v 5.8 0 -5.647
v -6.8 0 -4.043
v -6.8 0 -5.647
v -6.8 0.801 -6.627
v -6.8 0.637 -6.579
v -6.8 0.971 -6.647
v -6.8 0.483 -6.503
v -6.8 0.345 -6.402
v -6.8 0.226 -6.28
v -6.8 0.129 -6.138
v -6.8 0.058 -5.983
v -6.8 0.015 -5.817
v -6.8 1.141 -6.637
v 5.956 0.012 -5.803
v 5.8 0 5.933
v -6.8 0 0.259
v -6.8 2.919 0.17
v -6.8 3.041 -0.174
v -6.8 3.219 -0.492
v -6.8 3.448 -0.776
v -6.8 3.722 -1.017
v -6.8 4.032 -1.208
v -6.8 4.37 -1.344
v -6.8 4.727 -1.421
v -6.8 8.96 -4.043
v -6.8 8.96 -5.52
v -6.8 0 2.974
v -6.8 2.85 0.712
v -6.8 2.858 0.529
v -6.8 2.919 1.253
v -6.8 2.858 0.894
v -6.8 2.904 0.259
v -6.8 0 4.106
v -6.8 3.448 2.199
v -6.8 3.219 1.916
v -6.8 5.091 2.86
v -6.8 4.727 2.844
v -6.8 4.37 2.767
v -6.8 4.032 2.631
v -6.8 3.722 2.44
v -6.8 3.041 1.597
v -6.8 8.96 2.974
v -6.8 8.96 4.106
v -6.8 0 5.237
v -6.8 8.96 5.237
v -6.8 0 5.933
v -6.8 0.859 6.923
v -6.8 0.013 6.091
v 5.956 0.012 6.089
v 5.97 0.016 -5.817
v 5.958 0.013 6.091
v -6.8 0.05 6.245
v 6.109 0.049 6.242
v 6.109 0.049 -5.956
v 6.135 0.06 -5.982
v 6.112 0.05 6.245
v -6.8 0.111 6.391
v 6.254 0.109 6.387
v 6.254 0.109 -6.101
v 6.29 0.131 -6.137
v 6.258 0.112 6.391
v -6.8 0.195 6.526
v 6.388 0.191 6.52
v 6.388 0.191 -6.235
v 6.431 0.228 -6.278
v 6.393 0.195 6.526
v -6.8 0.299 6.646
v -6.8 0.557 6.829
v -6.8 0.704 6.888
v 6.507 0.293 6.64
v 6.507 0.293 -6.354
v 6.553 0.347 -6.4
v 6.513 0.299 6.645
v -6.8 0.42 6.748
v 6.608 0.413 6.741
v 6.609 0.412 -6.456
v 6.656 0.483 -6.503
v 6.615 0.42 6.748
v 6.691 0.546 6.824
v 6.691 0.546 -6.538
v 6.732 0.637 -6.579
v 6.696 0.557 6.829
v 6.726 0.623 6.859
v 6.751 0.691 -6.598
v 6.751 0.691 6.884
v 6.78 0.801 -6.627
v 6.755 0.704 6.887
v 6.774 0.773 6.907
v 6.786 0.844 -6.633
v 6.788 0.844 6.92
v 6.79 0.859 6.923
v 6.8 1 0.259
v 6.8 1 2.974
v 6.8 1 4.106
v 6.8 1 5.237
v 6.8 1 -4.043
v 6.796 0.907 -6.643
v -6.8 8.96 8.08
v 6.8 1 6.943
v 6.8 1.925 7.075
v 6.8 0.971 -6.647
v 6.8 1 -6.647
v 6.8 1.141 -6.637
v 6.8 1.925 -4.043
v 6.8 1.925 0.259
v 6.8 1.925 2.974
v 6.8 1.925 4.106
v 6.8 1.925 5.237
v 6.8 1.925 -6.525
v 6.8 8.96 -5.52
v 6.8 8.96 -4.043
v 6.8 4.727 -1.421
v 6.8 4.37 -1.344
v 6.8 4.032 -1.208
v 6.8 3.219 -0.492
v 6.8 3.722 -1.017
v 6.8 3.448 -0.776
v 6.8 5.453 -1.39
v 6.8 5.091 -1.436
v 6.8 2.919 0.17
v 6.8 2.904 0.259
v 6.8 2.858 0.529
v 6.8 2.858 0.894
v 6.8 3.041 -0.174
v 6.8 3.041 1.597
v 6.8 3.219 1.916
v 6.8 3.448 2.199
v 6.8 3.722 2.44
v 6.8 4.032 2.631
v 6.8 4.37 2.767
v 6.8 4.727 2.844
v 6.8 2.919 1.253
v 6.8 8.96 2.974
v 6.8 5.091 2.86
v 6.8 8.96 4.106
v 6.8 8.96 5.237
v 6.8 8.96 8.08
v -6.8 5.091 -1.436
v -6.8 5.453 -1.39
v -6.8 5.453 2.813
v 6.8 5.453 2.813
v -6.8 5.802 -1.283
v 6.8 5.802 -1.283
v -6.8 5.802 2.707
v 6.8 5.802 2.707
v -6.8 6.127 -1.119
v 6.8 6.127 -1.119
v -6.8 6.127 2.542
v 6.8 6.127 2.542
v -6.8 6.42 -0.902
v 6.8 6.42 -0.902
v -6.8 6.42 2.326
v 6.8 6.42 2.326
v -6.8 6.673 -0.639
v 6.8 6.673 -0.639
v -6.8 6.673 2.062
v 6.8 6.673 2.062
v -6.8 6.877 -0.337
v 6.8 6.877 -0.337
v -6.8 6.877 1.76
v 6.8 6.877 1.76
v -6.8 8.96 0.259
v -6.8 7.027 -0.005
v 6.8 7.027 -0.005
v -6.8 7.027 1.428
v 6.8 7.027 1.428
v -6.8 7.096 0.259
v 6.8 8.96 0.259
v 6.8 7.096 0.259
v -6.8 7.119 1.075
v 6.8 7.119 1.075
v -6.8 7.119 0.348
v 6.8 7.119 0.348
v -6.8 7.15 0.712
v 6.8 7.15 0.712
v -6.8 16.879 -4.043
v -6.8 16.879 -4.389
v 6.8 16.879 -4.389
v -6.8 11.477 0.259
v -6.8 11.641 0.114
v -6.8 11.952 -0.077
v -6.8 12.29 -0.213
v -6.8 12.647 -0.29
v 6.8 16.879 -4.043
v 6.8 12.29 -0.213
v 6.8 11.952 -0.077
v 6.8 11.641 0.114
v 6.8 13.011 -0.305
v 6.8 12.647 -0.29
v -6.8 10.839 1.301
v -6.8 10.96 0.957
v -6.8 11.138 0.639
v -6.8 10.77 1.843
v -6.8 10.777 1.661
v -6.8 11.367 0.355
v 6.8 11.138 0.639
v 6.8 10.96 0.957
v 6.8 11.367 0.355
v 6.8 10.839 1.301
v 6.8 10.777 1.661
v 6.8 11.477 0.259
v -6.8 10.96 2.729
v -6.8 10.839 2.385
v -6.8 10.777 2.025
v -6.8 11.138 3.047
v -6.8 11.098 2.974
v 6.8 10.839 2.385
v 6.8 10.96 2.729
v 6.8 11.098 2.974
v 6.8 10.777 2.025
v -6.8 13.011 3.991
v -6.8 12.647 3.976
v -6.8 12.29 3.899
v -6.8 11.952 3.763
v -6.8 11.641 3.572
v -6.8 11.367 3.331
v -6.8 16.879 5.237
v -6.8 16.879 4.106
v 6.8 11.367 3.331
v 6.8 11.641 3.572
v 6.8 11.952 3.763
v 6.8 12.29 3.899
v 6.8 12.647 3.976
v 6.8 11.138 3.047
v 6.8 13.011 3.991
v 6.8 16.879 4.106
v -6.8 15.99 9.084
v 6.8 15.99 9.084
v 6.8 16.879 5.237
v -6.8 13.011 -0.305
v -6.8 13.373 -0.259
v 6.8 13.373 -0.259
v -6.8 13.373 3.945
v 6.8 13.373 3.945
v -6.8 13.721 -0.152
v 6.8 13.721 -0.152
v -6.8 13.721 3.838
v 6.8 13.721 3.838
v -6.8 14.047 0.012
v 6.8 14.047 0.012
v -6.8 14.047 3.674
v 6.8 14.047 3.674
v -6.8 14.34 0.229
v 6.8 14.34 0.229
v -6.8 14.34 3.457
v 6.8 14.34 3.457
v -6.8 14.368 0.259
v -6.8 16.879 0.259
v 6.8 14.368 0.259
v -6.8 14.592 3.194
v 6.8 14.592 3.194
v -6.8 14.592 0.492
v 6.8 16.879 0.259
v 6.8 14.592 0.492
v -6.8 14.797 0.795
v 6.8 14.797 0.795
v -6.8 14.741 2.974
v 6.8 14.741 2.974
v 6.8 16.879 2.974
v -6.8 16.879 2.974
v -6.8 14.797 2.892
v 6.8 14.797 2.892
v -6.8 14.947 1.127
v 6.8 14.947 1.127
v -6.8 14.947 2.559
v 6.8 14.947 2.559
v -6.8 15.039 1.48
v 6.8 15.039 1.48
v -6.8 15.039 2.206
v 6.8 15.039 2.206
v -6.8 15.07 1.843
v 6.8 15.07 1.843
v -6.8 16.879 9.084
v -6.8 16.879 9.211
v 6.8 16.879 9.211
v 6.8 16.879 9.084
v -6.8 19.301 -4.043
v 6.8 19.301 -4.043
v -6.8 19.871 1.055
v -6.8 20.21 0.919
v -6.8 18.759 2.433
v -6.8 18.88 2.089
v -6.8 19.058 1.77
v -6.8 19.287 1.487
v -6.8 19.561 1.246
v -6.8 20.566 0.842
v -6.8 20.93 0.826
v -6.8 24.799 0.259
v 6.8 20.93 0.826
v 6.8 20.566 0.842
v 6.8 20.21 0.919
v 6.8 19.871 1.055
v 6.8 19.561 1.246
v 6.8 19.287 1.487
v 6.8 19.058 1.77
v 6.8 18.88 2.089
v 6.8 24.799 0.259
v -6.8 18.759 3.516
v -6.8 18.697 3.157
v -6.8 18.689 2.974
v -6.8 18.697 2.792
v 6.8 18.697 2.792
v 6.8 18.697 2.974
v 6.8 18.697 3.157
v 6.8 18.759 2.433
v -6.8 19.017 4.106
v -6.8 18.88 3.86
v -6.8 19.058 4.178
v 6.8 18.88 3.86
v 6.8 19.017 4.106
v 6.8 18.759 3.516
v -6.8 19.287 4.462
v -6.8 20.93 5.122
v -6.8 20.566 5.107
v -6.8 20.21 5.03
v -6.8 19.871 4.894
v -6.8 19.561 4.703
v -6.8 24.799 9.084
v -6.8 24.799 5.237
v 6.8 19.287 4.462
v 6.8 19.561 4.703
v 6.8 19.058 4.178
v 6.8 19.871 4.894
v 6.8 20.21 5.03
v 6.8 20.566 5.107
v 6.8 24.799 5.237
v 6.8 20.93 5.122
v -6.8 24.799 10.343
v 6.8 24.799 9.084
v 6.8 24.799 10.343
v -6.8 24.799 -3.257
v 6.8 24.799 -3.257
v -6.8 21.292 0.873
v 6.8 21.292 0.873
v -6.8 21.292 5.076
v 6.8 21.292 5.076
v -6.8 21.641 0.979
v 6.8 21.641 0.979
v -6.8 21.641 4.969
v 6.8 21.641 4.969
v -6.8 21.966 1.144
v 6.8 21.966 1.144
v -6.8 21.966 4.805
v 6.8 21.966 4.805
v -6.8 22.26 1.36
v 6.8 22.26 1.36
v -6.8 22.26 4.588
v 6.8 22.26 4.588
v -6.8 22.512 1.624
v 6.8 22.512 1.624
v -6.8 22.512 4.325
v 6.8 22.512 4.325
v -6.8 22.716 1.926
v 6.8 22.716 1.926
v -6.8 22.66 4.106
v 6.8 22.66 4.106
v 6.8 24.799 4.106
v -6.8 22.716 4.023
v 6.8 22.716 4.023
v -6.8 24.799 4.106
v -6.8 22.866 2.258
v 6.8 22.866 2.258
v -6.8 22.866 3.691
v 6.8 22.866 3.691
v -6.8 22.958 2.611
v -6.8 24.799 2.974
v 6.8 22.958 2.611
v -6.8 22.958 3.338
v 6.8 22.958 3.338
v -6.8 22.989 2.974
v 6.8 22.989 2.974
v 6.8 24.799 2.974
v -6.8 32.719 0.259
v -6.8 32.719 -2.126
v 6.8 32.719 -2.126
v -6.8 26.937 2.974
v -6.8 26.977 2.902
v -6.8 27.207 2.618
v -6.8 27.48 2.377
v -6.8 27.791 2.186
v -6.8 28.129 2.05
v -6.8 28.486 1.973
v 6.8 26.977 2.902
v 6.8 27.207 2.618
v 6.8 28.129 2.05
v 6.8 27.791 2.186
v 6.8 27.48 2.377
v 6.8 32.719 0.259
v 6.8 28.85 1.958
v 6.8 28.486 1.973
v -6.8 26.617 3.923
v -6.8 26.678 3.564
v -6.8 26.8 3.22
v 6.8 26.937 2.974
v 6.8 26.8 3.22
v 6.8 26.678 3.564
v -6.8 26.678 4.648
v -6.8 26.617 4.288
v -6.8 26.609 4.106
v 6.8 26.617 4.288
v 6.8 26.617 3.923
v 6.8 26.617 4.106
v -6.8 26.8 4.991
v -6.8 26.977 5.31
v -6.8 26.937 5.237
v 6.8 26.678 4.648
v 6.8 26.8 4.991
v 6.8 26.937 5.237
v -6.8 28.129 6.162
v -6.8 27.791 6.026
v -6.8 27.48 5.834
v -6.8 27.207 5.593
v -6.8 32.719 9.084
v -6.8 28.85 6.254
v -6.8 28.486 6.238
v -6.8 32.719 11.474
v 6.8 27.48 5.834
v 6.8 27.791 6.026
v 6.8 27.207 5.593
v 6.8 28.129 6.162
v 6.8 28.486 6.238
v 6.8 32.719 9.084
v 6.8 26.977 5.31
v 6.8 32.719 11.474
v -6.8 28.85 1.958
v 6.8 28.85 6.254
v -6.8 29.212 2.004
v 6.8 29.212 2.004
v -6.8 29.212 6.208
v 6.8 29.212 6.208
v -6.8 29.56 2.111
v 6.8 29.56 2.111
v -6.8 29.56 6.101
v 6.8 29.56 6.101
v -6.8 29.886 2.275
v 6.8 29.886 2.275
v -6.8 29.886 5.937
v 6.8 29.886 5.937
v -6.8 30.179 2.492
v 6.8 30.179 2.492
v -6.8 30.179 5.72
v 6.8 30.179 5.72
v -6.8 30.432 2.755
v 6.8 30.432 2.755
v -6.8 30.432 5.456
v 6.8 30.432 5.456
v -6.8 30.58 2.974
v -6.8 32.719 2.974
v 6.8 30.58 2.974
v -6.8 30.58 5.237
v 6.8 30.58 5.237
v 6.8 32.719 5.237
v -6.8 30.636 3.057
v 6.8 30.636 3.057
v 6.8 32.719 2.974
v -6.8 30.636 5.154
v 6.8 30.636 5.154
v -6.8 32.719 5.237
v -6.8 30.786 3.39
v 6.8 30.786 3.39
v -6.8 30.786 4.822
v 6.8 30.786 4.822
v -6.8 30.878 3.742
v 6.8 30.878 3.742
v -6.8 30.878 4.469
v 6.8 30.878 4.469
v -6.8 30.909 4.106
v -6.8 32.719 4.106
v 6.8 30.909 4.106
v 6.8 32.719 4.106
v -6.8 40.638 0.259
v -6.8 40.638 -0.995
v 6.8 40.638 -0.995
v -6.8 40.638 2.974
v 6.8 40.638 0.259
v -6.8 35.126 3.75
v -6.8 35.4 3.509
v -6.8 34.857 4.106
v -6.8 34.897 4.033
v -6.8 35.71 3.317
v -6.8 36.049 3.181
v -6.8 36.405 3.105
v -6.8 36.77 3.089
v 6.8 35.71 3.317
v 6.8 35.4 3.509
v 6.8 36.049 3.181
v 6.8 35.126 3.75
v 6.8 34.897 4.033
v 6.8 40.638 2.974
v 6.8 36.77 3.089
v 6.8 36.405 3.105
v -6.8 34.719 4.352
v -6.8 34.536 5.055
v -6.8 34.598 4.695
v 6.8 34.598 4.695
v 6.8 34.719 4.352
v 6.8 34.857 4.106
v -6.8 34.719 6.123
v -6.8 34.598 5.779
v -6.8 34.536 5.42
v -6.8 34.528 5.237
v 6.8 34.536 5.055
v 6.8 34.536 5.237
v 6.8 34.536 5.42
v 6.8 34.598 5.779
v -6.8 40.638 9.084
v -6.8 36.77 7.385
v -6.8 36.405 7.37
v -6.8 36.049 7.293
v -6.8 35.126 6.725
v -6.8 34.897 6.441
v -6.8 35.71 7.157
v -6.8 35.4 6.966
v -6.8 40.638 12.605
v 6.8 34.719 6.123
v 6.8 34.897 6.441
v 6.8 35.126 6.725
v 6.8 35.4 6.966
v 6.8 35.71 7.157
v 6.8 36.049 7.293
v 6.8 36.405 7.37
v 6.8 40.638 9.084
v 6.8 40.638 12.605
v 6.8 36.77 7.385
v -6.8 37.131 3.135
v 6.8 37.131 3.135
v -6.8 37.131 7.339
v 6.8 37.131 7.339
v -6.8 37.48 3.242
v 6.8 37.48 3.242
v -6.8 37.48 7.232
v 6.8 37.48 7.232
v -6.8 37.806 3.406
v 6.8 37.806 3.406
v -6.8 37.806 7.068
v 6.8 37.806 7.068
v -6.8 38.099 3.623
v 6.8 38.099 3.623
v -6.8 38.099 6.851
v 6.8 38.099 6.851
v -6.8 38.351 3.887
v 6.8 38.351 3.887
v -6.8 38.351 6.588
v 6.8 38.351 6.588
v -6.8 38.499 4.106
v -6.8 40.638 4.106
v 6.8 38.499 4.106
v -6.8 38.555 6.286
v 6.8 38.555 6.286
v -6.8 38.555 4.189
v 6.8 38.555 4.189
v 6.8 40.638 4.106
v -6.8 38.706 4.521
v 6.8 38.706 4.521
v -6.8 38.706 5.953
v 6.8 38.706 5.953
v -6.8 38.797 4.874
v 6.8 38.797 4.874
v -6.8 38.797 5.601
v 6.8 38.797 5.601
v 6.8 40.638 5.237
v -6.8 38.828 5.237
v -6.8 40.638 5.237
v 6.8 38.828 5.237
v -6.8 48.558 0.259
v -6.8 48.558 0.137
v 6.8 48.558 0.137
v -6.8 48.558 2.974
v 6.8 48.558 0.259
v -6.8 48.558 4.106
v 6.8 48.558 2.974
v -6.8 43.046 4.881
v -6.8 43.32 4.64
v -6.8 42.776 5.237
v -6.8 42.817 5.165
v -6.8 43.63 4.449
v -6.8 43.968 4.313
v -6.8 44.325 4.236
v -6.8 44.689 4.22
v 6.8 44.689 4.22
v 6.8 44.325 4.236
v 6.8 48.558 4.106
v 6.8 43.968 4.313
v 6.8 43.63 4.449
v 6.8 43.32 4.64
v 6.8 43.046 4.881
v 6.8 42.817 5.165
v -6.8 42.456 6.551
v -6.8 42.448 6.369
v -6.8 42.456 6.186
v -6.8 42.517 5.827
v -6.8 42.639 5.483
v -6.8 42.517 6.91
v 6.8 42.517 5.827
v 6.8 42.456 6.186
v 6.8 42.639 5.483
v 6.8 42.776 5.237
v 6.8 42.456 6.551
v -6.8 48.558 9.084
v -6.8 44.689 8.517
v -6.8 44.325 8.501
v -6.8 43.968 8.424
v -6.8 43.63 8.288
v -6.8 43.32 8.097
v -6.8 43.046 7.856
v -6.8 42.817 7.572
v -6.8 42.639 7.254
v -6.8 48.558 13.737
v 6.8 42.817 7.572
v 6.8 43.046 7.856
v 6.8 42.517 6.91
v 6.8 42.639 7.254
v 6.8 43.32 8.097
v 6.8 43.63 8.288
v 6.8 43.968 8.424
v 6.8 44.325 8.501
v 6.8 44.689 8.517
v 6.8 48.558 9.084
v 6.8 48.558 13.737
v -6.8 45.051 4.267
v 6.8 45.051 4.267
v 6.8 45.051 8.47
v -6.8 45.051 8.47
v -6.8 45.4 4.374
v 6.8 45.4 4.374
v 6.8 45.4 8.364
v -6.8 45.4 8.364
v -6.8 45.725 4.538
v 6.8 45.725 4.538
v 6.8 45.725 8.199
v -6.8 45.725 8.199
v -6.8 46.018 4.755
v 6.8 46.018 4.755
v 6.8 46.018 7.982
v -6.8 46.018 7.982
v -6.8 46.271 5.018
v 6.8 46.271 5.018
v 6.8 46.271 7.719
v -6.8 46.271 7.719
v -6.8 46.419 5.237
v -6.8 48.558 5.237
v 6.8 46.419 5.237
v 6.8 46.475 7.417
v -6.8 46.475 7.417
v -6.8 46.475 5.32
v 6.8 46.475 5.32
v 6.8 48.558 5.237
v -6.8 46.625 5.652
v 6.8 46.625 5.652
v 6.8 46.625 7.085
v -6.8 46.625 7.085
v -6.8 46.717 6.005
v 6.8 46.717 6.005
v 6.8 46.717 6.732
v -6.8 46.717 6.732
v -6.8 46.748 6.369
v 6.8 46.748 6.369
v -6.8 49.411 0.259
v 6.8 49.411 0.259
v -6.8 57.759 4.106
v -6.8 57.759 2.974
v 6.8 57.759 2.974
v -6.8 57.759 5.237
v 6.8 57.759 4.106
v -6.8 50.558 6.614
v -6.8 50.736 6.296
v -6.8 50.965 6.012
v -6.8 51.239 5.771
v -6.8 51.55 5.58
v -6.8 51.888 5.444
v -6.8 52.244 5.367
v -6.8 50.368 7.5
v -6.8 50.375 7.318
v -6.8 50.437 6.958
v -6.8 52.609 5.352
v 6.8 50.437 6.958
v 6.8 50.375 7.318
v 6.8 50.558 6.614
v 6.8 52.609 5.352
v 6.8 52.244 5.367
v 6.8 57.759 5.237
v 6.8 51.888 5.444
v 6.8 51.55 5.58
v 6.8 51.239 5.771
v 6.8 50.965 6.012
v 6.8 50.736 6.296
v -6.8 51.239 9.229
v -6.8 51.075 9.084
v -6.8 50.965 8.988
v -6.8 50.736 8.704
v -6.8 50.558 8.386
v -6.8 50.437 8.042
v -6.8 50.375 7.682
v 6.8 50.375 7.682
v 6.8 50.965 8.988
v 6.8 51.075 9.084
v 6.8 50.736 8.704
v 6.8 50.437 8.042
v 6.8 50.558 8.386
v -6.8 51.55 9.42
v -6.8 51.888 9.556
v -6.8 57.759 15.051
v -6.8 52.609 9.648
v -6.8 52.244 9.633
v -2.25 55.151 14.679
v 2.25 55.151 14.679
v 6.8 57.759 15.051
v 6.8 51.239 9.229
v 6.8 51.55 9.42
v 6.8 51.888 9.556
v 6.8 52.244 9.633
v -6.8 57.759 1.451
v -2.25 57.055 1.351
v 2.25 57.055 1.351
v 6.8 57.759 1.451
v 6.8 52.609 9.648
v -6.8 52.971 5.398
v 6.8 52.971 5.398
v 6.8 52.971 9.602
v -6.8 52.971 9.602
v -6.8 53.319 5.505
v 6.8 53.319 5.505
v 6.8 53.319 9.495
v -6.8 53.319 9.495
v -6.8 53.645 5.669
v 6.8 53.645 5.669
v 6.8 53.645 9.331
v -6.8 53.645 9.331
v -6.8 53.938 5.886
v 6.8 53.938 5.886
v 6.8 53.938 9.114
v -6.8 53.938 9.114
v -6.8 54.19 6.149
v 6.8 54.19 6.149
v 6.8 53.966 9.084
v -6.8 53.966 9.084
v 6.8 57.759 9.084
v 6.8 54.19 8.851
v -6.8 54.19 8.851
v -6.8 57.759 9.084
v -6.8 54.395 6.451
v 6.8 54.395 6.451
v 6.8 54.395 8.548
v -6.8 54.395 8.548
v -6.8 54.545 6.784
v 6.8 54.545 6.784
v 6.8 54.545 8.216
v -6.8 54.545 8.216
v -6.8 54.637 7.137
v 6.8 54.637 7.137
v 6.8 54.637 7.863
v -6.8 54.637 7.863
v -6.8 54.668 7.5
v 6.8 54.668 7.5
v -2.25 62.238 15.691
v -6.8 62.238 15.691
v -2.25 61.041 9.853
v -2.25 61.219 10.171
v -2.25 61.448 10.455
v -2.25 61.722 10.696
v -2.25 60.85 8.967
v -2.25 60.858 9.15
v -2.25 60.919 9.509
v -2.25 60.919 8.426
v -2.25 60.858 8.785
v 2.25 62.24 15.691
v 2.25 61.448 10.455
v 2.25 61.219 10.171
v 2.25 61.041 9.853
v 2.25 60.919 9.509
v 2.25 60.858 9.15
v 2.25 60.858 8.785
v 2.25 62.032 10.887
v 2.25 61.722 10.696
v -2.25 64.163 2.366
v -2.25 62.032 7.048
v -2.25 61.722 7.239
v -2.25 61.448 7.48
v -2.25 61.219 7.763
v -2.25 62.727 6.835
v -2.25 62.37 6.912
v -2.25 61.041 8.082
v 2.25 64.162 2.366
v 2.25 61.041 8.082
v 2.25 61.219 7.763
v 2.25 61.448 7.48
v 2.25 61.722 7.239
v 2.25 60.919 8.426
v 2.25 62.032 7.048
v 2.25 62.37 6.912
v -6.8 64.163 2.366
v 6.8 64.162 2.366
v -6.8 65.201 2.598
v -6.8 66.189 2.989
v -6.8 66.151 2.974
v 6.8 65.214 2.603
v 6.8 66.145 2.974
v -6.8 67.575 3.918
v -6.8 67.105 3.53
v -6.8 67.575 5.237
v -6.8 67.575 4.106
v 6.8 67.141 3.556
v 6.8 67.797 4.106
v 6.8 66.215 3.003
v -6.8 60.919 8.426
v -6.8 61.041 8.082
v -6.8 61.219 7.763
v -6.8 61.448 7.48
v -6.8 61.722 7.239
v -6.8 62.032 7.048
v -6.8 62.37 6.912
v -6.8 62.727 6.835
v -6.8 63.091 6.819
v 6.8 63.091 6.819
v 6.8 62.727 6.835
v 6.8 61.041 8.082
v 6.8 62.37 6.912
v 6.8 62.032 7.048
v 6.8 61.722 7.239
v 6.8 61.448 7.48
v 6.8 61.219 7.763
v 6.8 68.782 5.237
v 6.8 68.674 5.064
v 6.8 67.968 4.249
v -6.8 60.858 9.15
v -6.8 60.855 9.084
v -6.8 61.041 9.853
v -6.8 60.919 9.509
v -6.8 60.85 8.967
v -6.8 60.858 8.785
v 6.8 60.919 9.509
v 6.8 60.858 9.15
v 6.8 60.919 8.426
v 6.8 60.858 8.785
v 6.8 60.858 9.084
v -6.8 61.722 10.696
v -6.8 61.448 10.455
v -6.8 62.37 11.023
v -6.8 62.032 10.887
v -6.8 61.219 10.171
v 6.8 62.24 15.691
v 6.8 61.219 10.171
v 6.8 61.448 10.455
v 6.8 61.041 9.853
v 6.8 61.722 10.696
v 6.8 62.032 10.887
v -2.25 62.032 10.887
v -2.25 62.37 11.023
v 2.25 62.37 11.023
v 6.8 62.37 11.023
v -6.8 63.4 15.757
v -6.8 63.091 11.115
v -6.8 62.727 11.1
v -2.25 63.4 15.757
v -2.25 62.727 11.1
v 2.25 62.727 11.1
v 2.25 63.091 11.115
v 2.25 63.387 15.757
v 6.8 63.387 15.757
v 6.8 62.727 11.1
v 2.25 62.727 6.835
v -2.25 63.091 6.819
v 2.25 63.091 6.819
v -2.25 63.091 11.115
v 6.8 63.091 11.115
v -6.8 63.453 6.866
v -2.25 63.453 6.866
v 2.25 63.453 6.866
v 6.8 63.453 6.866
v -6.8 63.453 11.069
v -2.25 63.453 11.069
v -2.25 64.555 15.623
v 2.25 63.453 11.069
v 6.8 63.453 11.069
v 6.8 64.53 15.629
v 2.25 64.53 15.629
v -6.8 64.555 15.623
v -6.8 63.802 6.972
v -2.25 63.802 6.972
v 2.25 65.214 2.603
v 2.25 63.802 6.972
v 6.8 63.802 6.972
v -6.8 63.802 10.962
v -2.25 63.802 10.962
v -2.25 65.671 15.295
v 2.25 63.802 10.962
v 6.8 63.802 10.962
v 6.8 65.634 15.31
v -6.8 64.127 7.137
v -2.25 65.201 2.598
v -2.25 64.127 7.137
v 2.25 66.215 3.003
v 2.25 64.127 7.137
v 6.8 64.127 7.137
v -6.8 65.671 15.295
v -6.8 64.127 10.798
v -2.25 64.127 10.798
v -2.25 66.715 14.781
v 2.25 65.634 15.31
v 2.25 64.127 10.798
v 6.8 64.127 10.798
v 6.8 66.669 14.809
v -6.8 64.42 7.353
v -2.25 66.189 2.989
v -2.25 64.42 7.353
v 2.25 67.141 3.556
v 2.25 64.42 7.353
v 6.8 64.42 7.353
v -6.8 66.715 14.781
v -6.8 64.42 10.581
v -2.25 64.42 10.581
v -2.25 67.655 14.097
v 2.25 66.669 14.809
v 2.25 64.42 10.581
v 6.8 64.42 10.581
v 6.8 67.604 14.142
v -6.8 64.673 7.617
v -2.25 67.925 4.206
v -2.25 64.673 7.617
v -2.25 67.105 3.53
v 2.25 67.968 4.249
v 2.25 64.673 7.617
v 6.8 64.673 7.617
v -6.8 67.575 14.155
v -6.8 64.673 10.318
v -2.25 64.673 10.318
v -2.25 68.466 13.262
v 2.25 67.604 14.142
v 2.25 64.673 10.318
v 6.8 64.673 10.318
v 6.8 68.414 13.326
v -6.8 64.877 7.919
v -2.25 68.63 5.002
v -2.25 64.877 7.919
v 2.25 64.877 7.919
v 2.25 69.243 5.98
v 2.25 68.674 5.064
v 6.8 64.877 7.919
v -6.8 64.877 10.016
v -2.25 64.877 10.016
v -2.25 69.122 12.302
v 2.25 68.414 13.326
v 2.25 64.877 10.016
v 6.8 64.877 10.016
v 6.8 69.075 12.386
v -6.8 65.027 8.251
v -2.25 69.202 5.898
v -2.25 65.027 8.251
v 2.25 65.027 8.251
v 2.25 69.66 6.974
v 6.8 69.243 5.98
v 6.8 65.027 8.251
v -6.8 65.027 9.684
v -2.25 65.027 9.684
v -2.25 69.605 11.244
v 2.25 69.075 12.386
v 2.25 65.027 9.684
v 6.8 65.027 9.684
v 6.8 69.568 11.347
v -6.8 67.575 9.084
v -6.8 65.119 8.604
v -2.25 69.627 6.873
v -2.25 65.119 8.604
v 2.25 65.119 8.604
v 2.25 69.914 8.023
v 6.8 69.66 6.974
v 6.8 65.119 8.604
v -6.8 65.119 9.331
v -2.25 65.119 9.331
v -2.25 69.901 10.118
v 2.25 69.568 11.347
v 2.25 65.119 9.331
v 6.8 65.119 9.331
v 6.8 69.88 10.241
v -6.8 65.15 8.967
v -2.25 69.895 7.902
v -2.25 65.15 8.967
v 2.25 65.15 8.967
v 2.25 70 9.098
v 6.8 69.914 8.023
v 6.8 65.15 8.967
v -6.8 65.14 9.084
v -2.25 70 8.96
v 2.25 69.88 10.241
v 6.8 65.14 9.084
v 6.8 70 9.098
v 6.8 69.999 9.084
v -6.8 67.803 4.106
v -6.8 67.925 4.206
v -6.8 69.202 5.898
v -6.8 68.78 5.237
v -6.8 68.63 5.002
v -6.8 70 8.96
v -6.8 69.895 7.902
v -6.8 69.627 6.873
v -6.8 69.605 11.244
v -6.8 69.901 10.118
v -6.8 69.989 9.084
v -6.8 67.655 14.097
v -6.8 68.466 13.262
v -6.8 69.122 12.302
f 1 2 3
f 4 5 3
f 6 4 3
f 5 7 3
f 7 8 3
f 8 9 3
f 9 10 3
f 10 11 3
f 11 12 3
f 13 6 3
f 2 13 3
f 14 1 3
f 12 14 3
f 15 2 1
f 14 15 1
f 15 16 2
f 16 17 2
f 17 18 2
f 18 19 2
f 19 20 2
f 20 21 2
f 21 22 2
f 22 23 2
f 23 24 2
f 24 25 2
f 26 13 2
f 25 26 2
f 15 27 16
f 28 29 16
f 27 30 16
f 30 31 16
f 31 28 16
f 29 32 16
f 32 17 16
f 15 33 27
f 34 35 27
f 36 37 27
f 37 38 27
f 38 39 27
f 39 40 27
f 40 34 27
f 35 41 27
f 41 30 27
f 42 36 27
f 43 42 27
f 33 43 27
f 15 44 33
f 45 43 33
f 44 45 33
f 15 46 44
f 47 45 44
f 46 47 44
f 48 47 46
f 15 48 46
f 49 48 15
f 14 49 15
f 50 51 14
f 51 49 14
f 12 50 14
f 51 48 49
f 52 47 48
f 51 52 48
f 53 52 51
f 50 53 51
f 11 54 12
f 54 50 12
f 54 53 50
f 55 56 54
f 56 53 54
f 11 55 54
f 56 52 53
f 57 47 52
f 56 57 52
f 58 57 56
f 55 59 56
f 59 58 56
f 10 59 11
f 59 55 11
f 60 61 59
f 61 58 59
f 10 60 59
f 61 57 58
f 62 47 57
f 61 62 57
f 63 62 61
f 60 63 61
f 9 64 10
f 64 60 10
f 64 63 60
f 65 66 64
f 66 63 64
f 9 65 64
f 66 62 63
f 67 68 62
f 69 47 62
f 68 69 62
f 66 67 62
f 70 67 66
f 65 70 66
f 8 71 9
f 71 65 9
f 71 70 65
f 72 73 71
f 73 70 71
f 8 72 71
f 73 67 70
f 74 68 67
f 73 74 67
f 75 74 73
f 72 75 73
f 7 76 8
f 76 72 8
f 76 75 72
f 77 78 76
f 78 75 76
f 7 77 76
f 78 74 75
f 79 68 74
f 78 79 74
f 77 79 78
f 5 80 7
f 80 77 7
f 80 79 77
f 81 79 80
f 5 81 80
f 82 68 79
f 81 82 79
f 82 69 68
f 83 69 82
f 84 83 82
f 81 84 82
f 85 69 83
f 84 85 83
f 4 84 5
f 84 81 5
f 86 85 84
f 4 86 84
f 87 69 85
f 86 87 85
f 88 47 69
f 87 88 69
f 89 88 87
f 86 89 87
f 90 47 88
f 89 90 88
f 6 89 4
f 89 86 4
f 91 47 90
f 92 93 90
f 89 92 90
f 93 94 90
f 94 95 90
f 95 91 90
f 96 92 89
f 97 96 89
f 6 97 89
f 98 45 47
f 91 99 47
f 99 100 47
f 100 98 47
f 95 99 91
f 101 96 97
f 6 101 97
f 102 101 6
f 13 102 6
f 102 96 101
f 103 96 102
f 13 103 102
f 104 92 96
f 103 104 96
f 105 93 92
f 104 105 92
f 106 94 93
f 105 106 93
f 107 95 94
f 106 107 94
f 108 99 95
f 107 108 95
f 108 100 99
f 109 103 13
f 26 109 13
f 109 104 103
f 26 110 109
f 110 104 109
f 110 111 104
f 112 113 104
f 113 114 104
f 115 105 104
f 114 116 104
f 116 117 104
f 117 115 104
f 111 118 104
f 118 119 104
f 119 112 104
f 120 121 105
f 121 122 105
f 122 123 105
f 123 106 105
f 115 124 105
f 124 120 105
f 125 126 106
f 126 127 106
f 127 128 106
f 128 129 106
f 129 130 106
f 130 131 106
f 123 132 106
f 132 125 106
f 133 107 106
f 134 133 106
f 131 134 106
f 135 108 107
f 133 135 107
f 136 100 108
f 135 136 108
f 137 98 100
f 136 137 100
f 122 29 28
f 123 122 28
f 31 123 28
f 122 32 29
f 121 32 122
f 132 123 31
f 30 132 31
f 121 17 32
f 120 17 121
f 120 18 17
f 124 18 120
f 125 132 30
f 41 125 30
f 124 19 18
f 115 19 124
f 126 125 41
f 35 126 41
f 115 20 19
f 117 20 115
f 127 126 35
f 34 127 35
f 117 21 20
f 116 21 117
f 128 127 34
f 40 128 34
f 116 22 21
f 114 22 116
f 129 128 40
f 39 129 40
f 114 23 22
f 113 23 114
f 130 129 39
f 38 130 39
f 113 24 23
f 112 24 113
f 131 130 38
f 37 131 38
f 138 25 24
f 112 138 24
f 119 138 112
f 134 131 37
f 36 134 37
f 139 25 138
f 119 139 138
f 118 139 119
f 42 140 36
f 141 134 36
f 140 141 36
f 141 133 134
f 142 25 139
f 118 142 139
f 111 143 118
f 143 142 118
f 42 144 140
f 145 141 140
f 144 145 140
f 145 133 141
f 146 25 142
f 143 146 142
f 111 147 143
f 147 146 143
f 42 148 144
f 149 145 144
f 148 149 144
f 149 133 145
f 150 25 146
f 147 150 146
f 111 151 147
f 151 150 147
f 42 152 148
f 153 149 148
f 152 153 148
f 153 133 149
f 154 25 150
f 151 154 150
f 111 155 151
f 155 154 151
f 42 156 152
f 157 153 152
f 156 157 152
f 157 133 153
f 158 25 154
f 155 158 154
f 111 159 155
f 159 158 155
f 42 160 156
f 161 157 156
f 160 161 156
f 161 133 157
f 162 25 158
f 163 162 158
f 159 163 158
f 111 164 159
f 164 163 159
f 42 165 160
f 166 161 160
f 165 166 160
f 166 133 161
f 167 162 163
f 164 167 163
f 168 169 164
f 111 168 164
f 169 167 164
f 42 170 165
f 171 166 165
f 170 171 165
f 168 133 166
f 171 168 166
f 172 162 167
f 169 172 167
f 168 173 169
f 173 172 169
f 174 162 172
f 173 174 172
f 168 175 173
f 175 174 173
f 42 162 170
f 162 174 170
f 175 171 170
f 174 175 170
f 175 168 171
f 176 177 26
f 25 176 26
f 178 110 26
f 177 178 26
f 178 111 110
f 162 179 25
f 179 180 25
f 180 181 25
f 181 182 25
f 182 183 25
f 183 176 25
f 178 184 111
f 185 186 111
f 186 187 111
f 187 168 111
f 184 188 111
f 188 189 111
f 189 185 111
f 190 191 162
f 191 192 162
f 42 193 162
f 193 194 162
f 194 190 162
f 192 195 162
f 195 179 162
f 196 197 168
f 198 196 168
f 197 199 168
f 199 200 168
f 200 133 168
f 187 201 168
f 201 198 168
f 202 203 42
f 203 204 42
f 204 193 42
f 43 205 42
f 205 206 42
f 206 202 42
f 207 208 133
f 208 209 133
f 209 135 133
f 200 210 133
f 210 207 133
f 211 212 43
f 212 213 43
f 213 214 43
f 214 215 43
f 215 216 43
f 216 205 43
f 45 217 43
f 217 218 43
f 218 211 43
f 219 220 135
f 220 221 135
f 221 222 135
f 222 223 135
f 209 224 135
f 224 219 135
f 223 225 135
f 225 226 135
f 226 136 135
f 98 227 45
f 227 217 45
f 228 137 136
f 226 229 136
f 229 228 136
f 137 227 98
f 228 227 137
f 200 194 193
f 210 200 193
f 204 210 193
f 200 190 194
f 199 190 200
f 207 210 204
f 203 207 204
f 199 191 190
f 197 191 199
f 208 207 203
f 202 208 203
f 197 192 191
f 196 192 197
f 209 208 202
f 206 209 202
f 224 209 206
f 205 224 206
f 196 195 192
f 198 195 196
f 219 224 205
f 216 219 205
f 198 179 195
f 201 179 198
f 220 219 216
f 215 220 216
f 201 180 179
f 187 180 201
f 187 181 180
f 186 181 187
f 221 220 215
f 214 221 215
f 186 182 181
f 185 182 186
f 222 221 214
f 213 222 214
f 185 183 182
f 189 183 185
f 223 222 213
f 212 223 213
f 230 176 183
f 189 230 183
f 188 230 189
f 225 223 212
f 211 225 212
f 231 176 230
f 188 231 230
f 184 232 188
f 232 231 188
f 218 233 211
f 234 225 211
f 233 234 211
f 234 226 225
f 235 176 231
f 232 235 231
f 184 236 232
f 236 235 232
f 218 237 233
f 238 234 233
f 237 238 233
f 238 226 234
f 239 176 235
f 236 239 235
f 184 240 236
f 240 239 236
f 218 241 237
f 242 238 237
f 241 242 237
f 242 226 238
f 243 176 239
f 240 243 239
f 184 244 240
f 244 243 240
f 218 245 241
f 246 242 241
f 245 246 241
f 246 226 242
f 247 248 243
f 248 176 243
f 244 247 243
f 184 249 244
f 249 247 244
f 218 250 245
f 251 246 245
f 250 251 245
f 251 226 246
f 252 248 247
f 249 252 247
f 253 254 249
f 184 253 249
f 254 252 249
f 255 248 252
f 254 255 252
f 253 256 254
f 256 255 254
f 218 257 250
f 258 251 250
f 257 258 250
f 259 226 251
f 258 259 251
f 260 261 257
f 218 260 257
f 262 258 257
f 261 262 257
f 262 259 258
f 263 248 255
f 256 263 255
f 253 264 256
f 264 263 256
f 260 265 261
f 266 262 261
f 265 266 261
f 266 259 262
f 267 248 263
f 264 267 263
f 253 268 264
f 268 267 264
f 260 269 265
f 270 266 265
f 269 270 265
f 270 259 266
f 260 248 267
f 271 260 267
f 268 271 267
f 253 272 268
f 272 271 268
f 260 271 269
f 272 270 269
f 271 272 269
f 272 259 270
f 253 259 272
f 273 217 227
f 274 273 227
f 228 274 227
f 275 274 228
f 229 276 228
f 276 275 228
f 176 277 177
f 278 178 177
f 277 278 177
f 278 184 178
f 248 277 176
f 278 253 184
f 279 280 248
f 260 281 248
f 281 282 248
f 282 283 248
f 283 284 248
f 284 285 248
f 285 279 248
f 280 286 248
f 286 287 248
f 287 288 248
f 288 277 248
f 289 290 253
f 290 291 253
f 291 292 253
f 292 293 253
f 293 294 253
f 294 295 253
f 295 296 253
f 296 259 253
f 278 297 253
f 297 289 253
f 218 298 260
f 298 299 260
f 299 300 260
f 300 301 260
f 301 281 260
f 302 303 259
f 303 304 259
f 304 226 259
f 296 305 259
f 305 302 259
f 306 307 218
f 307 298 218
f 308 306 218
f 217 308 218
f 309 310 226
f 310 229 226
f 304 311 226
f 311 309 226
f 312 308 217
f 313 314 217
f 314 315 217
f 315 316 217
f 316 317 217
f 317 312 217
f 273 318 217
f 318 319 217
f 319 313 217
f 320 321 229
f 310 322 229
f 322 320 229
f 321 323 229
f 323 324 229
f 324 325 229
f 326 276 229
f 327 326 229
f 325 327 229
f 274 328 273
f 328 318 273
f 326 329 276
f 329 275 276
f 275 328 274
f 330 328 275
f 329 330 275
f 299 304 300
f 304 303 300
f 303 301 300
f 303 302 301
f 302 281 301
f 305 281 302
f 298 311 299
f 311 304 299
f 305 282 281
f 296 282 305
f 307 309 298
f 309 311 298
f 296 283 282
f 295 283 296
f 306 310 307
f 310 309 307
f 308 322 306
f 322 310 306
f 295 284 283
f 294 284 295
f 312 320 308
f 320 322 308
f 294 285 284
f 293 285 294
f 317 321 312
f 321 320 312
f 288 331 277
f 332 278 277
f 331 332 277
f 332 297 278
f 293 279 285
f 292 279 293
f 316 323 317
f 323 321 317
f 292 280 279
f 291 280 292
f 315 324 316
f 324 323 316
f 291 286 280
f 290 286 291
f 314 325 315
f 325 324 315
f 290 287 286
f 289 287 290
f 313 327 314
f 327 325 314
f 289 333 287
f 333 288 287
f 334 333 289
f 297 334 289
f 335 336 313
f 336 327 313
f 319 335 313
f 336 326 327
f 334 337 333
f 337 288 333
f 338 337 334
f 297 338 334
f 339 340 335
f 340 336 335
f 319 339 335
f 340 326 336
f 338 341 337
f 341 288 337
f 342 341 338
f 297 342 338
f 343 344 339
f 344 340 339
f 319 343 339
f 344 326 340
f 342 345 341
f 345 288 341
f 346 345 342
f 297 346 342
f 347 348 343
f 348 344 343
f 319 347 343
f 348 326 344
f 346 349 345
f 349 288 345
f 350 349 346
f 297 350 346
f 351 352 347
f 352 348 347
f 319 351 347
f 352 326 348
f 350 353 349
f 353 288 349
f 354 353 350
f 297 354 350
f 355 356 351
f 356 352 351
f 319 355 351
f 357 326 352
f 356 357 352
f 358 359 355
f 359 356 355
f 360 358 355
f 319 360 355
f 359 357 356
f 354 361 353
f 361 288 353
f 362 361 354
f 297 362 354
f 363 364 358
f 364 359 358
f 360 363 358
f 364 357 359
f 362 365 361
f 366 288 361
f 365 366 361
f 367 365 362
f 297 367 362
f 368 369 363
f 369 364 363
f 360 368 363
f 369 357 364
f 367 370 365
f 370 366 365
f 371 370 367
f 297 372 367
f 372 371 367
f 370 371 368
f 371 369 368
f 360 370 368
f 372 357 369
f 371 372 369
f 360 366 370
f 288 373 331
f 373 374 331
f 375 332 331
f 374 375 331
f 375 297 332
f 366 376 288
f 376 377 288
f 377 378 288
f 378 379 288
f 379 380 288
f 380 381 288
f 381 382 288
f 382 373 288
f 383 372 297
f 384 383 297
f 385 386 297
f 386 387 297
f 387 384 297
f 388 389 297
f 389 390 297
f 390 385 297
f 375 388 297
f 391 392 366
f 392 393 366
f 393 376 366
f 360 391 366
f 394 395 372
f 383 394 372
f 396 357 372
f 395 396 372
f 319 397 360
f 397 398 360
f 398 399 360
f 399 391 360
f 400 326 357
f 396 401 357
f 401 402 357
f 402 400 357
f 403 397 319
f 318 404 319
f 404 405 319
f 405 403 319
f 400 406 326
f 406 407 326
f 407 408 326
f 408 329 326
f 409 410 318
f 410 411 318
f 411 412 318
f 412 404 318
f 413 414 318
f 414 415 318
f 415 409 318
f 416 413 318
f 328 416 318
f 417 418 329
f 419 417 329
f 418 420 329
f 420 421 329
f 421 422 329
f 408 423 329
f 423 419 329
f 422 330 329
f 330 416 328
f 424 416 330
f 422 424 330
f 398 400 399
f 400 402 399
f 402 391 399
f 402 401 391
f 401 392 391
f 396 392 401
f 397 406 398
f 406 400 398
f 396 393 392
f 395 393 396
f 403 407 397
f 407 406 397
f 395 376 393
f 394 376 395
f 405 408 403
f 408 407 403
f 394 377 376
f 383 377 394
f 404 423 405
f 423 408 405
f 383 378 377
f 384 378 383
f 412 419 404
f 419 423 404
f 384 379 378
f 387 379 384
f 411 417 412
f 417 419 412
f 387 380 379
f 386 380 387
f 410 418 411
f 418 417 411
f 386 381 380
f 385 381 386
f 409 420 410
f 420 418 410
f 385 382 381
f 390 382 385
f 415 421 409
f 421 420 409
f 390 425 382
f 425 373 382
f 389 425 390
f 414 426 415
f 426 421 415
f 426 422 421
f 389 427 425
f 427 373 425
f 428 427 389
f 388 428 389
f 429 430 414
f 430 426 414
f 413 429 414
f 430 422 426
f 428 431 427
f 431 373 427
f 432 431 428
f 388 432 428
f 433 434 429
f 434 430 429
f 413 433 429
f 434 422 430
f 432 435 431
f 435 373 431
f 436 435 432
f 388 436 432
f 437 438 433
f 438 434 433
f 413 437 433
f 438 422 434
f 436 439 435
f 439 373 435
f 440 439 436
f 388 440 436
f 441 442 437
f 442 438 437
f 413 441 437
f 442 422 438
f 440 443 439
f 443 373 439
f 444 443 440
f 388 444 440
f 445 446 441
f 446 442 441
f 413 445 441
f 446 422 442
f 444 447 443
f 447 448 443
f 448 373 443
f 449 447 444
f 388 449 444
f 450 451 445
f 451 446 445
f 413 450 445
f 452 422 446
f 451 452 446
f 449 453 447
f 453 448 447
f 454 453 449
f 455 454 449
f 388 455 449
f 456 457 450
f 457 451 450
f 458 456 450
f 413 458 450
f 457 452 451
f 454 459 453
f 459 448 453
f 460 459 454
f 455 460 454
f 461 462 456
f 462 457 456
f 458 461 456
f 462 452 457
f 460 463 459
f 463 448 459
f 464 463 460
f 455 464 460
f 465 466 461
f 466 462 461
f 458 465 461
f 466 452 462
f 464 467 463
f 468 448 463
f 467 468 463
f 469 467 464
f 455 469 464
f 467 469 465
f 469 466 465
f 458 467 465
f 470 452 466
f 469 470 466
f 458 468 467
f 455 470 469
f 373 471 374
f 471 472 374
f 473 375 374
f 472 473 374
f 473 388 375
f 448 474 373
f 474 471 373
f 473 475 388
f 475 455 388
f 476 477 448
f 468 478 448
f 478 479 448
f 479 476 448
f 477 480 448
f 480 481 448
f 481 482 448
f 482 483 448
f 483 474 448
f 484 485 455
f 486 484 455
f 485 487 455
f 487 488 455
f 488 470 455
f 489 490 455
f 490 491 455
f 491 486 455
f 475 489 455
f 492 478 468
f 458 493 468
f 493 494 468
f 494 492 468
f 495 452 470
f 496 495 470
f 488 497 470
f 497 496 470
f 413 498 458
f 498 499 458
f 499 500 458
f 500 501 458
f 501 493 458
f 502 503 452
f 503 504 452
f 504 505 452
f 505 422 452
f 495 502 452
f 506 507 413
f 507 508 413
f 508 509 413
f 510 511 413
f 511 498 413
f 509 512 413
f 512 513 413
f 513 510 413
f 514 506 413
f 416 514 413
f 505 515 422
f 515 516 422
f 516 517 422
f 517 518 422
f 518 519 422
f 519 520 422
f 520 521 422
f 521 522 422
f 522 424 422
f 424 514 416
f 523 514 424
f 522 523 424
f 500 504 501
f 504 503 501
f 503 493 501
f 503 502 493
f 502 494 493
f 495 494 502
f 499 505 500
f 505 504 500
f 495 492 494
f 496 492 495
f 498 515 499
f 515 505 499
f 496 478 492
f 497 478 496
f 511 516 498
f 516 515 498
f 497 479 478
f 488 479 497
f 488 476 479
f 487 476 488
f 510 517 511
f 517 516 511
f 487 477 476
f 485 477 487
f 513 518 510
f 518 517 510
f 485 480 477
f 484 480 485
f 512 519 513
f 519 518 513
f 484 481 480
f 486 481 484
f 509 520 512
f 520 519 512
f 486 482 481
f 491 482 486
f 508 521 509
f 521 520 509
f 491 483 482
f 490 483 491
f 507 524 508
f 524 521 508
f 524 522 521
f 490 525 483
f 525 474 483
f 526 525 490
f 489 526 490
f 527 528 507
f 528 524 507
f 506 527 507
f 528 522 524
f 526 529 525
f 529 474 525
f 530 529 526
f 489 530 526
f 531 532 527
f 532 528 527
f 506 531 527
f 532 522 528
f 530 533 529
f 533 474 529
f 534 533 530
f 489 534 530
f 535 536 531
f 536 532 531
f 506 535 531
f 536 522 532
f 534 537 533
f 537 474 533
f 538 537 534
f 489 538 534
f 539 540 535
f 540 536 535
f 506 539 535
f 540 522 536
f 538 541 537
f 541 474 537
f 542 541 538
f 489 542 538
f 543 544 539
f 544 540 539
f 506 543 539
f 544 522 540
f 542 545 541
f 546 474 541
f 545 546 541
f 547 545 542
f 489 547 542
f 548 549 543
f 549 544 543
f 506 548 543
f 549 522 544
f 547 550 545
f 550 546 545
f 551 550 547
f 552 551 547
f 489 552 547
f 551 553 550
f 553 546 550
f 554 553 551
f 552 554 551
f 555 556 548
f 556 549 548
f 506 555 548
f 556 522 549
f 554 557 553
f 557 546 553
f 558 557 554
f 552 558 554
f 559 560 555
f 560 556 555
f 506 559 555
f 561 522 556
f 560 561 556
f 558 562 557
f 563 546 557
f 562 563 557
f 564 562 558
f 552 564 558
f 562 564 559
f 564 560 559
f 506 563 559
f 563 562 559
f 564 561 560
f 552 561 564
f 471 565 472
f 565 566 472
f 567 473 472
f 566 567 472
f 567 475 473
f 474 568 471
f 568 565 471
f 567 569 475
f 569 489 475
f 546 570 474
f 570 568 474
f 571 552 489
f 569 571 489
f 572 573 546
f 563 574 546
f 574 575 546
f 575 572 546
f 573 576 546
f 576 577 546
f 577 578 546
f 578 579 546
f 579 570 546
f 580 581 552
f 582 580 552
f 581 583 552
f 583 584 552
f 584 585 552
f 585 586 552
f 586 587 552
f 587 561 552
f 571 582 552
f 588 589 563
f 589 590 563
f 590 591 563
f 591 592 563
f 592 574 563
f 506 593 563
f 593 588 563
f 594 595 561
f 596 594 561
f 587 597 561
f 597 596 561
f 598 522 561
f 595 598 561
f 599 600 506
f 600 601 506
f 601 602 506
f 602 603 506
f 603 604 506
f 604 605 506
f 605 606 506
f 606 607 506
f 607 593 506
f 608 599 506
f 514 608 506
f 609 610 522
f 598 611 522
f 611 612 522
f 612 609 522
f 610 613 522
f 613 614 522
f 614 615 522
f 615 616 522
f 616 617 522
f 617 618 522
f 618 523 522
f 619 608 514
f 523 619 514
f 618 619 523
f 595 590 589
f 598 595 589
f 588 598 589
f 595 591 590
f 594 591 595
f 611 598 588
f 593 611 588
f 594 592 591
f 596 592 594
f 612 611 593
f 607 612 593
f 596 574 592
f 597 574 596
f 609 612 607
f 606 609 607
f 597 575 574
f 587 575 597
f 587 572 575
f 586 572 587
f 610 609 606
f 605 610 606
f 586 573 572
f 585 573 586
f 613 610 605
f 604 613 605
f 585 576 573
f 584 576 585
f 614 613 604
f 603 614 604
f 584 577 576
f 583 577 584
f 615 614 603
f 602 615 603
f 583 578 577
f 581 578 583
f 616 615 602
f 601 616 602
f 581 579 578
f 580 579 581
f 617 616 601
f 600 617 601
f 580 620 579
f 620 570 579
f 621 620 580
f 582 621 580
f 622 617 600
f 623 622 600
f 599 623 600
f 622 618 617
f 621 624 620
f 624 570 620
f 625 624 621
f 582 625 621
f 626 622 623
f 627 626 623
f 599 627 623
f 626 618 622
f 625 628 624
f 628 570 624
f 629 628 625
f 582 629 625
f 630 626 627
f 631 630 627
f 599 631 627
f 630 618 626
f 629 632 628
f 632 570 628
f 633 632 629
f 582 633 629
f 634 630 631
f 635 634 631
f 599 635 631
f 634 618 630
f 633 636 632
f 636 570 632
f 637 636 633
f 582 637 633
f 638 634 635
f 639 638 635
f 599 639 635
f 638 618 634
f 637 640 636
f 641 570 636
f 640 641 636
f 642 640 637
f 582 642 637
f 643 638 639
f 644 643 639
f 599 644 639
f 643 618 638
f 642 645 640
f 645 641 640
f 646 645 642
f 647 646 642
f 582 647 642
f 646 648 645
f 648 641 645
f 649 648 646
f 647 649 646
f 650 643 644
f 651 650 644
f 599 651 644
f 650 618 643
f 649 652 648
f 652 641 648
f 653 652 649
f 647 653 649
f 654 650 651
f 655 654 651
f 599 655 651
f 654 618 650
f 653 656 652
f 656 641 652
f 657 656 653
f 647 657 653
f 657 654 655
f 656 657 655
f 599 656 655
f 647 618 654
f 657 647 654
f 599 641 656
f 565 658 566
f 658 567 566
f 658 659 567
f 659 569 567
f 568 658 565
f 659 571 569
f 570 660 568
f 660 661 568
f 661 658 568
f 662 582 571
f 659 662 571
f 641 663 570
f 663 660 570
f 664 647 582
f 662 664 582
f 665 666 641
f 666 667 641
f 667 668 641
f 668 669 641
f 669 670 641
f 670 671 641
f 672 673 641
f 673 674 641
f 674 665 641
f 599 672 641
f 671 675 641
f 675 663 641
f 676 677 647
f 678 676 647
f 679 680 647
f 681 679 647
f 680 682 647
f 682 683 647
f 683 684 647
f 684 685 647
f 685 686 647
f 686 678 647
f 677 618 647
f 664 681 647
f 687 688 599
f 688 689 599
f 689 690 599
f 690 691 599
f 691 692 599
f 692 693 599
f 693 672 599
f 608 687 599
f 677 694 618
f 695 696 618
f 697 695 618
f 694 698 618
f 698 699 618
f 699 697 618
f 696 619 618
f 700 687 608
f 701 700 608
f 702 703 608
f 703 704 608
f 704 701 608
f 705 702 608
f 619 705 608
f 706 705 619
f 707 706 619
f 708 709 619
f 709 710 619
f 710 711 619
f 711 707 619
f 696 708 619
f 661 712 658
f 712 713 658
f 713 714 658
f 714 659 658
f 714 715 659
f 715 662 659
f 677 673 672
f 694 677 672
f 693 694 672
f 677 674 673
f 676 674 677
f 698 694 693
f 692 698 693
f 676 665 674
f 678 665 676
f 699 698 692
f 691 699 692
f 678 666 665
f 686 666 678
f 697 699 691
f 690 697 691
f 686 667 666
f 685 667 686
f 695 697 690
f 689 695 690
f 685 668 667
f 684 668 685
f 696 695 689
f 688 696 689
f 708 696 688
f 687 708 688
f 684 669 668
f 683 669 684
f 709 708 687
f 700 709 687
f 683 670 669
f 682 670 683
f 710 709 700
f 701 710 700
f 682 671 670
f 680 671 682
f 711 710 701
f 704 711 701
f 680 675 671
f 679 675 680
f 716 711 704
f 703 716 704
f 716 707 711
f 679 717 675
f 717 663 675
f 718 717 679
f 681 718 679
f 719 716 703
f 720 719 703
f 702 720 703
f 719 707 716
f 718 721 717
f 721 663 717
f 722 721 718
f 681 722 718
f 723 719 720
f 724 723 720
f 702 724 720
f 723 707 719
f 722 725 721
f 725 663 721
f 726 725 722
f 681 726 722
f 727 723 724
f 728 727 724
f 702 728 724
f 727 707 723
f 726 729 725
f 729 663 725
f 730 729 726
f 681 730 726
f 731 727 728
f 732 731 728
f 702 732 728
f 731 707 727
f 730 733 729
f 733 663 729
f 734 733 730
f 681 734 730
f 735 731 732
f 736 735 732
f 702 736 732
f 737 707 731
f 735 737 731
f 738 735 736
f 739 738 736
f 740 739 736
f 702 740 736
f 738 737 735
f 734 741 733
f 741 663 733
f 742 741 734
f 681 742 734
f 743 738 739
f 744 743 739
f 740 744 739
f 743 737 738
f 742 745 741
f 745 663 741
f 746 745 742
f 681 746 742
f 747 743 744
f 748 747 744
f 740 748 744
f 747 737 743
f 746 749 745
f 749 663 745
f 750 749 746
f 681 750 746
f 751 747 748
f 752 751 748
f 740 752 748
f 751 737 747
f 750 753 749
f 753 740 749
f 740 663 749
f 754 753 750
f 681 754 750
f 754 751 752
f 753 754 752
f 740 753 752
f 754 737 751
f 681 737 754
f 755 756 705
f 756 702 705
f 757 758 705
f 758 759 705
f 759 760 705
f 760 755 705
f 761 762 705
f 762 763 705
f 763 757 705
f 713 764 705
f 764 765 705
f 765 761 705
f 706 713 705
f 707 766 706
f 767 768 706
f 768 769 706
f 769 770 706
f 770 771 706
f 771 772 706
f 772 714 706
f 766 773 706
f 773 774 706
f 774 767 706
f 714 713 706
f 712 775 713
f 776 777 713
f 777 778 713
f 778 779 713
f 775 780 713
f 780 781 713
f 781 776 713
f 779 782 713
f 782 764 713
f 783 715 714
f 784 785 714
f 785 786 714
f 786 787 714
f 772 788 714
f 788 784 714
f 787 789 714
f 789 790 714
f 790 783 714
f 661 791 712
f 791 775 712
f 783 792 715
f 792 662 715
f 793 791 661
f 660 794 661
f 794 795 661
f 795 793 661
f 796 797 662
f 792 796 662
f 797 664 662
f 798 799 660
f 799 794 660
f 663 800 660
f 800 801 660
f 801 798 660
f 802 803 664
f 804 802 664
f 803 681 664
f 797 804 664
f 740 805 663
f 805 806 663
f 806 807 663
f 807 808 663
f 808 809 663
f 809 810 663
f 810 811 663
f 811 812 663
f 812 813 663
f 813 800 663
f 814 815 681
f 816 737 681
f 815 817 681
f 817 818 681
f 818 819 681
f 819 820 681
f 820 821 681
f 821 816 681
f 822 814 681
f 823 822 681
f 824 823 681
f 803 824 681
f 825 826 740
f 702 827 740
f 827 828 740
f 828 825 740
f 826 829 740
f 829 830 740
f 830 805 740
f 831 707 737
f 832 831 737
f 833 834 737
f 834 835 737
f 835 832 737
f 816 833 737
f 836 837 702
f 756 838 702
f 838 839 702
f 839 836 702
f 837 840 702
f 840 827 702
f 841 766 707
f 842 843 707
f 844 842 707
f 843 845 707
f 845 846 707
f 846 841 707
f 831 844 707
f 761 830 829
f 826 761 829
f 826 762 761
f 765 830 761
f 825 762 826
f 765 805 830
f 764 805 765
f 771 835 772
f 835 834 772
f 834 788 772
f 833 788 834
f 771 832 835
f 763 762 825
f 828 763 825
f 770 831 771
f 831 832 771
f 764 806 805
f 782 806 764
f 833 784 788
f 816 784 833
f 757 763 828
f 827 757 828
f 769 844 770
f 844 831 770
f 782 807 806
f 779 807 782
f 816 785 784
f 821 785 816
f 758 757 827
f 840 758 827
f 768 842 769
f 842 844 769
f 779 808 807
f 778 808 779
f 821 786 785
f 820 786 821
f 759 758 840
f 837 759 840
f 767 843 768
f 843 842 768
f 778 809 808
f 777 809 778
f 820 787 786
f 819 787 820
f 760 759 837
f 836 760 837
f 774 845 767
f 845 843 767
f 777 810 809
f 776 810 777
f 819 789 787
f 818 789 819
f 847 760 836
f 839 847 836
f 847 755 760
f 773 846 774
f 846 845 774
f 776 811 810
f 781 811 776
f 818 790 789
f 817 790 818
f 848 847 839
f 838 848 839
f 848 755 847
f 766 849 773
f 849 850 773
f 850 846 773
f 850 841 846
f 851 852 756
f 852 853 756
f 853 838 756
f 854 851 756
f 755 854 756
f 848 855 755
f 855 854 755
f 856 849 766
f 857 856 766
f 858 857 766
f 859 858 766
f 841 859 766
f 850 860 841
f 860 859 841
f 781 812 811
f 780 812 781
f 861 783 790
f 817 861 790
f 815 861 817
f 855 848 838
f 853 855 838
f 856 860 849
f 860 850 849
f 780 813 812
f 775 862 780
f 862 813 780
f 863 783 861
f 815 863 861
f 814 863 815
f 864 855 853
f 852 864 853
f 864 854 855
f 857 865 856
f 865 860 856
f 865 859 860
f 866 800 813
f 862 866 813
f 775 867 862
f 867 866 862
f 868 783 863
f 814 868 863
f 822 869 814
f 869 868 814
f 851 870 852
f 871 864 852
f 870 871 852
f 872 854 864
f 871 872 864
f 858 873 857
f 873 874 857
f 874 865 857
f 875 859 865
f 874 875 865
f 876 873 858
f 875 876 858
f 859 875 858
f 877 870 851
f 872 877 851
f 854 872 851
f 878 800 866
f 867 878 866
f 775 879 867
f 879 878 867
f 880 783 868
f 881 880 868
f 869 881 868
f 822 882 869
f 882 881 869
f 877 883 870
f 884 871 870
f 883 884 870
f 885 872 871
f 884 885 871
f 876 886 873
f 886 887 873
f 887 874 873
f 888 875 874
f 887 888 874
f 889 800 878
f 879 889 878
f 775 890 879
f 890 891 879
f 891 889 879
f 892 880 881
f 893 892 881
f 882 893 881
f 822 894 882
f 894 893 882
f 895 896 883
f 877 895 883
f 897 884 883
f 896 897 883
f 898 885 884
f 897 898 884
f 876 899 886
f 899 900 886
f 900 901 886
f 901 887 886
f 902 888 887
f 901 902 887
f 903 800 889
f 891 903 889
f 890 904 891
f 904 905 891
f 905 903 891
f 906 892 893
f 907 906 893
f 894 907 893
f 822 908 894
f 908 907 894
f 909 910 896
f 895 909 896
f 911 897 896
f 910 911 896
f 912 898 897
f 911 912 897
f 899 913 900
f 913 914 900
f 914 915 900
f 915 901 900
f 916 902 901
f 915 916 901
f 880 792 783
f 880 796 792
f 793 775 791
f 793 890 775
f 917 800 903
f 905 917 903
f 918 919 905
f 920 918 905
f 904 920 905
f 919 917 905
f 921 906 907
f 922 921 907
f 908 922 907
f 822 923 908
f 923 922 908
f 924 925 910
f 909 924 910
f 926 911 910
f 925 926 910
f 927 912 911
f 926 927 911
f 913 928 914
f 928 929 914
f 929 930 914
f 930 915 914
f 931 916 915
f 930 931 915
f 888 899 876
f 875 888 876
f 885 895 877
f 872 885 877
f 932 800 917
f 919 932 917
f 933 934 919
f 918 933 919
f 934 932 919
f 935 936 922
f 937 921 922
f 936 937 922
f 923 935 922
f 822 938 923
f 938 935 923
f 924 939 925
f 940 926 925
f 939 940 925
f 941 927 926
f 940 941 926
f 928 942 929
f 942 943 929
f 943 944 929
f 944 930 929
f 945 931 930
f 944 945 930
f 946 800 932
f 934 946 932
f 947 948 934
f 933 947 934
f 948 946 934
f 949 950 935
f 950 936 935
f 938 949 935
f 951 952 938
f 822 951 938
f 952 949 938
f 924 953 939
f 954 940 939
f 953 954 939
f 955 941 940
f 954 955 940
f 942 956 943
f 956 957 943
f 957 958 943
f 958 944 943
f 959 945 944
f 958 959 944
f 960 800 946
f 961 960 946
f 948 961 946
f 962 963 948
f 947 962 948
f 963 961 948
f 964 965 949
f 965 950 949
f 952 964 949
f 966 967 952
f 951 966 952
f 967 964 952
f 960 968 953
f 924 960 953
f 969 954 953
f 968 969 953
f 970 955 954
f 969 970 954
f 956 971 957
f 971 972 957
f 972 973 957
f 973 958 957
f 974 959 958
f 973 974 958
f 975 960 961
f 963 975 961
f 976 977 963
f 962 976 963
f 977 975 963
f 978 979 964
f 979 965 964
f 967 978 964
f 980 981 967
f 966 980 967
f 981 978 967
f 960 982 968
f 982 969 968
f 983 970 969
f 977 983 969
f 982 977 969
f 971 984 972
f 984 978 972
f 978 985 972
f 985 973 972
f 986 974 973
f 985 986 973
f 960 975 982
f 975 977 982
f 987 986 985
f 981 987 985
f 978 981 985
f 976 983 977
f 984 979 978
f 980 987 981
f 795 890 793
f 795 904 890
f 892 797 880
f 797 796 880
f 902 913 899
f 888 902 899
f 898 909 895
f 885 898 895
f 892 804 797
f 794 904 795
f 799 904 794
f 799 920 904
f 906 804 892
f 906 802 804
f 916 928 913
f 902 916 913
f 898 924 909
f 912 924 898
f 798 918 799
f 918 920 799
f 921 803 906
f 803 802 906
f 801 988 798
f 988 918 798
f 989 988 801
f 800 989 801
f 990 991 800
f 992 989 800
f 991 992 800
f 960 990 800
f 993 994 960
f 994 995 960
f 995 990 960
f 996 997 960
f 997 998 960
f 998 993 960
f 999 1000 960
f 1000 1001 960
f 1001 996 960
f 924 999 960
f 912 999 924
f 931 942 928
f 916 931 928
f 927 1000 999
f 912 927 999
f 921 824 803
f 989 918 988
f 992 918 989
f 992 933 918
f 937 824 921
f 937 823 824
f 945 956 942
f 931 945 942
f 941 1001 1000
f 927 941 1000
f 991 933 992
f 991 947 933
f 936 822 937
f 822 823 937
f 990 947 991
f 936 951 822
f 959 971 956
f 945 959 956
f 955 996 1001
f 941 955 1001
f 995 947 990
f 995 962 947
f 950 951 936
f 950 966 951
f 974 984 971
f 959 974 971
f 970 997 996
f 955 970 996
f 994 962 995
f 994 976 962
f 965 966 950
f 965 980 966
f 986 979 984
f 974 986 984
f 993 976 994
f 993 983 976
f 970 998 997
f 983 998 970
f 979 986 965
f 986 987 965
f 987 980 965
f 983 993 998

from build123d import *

# Parameters (mm, degrees)
CUT_EXTRUDE_3_DEPTH      = 73.537615195
CUT_EXTRUDE_3_DEPTH_BACK = 73.537615195
SKETCH_6_W               = 4.5
SKETCH_6_H               = 15
FILLET_1_R               = 6.8
SKETCH_4_R               = 2.15
CUT_EXTRUDE_1_DEPTH      = 74.261176759
SKETCH_5_R               = 2.15
CUT_EXTRUDE_2_DEPTH      = 74.261176759
PATTERN_LINEAR_1_COUNT   = 7
PATTERN_LINEAR_1_PITCH   = 8
FILLET_2_R               = 6.8
FILLET_3_R               = 1


with BuildPart() as part:
    # 草图2 → 放样1 section 0
    with BuildSketch(Plane(origin=(0, 70, 0), x_dir=(1, 0, 0), z_dir=(0, 1, 0))):
        with BuildLine():
            Line((-6.8, -16.8), (6.8, -16.8))
            Line((6.8, -16.8), (6.8, -3.2))
            Line((6.8, -3.2), (-6.8, -3.2))
            Line((-6.8, -3.2), (-6.8, -16.8))
        make_face()
    # 草图1 → 放样1 section 1
    with BuildSketch(Plane(origin=(0, 0, 0), x_dir=(1, 0, 0), z_dir=(0, 1, 0))):
        with BuildLine():
            Line((-6.8, -6.8), (6.8, -6.8))
            Line((6.8, -6.8), (6.8, 6.8))
            Line((6.8, 6.8), (-6.8, 6.8))
            Line((-6.8, 6.8), (-6.8, -6.8))
        make_face()
    loft()

    # 草图6 → 切除-拉伸3 (cut, two sides: drawn at the far end of the back side and taken through both)
    with BuildSketch(Plane(origin=(0, -0.952, 6.664), x_dir=(1, 0, 0), z_dir=(0, -0.14142135623730942, 0.9899494936611666)).offset(-CUT_EXTRUDE_3_DEPTH_BACK)):
        with Locations((0, 64.172343341)):
            Rectangle(SKETCH_6_W, SKETCH_6_H)
    extrude(amount=CUT_EXTRUDE_3_DEPTH + CUT_EXTRUDE_3_DEPTH_BACK, mode=Mode.SUBTRACT)

    # 圆角1
    fillet_1_edges = [part.edges().sort_by_distance(p)[0] for p in [
        (4.525, 70, 3.2),
        (-4.525, 70, 16.8),
    ]]
    fillet(fillet_1_edges, radius=FILLET_1_R)

    # 草图4 → 切除-拉伸1 (cut, through all)
    with BuildSketch(Plane(origin=(6.8, 0, 0), x_dir=(0, 0, -1), z_dir=(1, 0, 0))):
        with Locations(Location((-8.967347222, 63, 0), (0, 0, 270))):
            Circle(SKETCH_4_R)
    extrude(amount=-CUT_EXTRUDE_1_DEPTH, mode=Mode.SUBTRACT)

    # 草图5 → 切除-拉伸2 (cut, through all)
    with BuildSketch(Plane(origin=(6.8, 0, 0), x_dir=(0, 0, -1), z_dir=(1, 0, 0))):
        with Locations(Location((-0.711694224, 5, 0), (0, 0, 90))):
            Circle(SKETCH_5_R)
    cut_extrude_2 = extrude(amount=-CUT_EXTRUDE_2_DEPTH, mode=Mode.SUBTRACT)

    # 阵列(线性)1: 切除-拉伸2 ×7
    with Locations(*[Vector(0, 0.9899494936611666, 0.14142135623730945) * (i * PATTERN_LINEAR_1_PITCH) for i in range(1, PATTERN_LINEAR_1_COUNT)]):
        add(cut_extrude_2, mode=Mode.SUBTRACT)

    # 圆角2
    # the kernel refuses this fillet: 6.8 mm, written as the material it takes off along each edge
    with BuildSketch(Plane(origin=(12.490471053, 70, 3.2), x_dir=(0, -0.9899494936611667, -0.14142135623730884), z_dir=(-1, 0, 0))) as fillet_2_piece_1:
        with BuildLine():
            CenterArc((5.896188421, 6.8), FILLET_2_R, 189.295271006, 80.704728994)
            Line((-0.814521127, 5.701647891), (-0.948735318, 5.679680849))
            ThreePointArc((-0.948735318, 5.679680849), (-0.541893695, 2.831590641), (-0.134633131, -0.019233304))
            Line((-0.134633131, -0.019233304), (0, -0.136))
            Line((0, -0.136), (5.896188421, -0.136))
            Line((5.896188421, -0.136), (5.896188421, 0))
        make_face()
    extrude(amount=34.030942106, mode=Mode.SUBTRACT)
    with BuildSketch(Plane(origin=(-17.347634455, 70, 16.8), x_dir=(0, -0.9899494936611665, -0.14142135623730936), z_dir=(1, 0, 0))) as fillet_2_piece_2:
        with BuildLine():
            CenterArc((7.839053782, 6.8), FILLET_2_R, 173.031690524, 96.968309476)
            Line((1.089282619, 7.624978336), (0.954287196, 7.641477903))
            ThreePointArc((0.954287196, 7.641477903), (0.410008179, 3.831722473), (-0.134633131, 0.019233304))
            Line((-0.134633131, 0.019233304), (0, -0.136))
            Line((0, -0.136), (7.839053782, -0.136))
            Line((7.839053782, -0.136), (7.839053782, 0))
        make_face()
    extrude(amount=43.745268909, mode=Mode.SUBTRACT)

    # 圆角3
    fillet_3_edges = [part.edges().sort_by_distance(p)[0] for p in [
        (0, 0, -6.8),
        (6.8, 0, 0),
        (0, 0, 6.8),
    ]]
    fillet(fillet_3_edges, radius=FILLET_3_R)


solid = part.part
